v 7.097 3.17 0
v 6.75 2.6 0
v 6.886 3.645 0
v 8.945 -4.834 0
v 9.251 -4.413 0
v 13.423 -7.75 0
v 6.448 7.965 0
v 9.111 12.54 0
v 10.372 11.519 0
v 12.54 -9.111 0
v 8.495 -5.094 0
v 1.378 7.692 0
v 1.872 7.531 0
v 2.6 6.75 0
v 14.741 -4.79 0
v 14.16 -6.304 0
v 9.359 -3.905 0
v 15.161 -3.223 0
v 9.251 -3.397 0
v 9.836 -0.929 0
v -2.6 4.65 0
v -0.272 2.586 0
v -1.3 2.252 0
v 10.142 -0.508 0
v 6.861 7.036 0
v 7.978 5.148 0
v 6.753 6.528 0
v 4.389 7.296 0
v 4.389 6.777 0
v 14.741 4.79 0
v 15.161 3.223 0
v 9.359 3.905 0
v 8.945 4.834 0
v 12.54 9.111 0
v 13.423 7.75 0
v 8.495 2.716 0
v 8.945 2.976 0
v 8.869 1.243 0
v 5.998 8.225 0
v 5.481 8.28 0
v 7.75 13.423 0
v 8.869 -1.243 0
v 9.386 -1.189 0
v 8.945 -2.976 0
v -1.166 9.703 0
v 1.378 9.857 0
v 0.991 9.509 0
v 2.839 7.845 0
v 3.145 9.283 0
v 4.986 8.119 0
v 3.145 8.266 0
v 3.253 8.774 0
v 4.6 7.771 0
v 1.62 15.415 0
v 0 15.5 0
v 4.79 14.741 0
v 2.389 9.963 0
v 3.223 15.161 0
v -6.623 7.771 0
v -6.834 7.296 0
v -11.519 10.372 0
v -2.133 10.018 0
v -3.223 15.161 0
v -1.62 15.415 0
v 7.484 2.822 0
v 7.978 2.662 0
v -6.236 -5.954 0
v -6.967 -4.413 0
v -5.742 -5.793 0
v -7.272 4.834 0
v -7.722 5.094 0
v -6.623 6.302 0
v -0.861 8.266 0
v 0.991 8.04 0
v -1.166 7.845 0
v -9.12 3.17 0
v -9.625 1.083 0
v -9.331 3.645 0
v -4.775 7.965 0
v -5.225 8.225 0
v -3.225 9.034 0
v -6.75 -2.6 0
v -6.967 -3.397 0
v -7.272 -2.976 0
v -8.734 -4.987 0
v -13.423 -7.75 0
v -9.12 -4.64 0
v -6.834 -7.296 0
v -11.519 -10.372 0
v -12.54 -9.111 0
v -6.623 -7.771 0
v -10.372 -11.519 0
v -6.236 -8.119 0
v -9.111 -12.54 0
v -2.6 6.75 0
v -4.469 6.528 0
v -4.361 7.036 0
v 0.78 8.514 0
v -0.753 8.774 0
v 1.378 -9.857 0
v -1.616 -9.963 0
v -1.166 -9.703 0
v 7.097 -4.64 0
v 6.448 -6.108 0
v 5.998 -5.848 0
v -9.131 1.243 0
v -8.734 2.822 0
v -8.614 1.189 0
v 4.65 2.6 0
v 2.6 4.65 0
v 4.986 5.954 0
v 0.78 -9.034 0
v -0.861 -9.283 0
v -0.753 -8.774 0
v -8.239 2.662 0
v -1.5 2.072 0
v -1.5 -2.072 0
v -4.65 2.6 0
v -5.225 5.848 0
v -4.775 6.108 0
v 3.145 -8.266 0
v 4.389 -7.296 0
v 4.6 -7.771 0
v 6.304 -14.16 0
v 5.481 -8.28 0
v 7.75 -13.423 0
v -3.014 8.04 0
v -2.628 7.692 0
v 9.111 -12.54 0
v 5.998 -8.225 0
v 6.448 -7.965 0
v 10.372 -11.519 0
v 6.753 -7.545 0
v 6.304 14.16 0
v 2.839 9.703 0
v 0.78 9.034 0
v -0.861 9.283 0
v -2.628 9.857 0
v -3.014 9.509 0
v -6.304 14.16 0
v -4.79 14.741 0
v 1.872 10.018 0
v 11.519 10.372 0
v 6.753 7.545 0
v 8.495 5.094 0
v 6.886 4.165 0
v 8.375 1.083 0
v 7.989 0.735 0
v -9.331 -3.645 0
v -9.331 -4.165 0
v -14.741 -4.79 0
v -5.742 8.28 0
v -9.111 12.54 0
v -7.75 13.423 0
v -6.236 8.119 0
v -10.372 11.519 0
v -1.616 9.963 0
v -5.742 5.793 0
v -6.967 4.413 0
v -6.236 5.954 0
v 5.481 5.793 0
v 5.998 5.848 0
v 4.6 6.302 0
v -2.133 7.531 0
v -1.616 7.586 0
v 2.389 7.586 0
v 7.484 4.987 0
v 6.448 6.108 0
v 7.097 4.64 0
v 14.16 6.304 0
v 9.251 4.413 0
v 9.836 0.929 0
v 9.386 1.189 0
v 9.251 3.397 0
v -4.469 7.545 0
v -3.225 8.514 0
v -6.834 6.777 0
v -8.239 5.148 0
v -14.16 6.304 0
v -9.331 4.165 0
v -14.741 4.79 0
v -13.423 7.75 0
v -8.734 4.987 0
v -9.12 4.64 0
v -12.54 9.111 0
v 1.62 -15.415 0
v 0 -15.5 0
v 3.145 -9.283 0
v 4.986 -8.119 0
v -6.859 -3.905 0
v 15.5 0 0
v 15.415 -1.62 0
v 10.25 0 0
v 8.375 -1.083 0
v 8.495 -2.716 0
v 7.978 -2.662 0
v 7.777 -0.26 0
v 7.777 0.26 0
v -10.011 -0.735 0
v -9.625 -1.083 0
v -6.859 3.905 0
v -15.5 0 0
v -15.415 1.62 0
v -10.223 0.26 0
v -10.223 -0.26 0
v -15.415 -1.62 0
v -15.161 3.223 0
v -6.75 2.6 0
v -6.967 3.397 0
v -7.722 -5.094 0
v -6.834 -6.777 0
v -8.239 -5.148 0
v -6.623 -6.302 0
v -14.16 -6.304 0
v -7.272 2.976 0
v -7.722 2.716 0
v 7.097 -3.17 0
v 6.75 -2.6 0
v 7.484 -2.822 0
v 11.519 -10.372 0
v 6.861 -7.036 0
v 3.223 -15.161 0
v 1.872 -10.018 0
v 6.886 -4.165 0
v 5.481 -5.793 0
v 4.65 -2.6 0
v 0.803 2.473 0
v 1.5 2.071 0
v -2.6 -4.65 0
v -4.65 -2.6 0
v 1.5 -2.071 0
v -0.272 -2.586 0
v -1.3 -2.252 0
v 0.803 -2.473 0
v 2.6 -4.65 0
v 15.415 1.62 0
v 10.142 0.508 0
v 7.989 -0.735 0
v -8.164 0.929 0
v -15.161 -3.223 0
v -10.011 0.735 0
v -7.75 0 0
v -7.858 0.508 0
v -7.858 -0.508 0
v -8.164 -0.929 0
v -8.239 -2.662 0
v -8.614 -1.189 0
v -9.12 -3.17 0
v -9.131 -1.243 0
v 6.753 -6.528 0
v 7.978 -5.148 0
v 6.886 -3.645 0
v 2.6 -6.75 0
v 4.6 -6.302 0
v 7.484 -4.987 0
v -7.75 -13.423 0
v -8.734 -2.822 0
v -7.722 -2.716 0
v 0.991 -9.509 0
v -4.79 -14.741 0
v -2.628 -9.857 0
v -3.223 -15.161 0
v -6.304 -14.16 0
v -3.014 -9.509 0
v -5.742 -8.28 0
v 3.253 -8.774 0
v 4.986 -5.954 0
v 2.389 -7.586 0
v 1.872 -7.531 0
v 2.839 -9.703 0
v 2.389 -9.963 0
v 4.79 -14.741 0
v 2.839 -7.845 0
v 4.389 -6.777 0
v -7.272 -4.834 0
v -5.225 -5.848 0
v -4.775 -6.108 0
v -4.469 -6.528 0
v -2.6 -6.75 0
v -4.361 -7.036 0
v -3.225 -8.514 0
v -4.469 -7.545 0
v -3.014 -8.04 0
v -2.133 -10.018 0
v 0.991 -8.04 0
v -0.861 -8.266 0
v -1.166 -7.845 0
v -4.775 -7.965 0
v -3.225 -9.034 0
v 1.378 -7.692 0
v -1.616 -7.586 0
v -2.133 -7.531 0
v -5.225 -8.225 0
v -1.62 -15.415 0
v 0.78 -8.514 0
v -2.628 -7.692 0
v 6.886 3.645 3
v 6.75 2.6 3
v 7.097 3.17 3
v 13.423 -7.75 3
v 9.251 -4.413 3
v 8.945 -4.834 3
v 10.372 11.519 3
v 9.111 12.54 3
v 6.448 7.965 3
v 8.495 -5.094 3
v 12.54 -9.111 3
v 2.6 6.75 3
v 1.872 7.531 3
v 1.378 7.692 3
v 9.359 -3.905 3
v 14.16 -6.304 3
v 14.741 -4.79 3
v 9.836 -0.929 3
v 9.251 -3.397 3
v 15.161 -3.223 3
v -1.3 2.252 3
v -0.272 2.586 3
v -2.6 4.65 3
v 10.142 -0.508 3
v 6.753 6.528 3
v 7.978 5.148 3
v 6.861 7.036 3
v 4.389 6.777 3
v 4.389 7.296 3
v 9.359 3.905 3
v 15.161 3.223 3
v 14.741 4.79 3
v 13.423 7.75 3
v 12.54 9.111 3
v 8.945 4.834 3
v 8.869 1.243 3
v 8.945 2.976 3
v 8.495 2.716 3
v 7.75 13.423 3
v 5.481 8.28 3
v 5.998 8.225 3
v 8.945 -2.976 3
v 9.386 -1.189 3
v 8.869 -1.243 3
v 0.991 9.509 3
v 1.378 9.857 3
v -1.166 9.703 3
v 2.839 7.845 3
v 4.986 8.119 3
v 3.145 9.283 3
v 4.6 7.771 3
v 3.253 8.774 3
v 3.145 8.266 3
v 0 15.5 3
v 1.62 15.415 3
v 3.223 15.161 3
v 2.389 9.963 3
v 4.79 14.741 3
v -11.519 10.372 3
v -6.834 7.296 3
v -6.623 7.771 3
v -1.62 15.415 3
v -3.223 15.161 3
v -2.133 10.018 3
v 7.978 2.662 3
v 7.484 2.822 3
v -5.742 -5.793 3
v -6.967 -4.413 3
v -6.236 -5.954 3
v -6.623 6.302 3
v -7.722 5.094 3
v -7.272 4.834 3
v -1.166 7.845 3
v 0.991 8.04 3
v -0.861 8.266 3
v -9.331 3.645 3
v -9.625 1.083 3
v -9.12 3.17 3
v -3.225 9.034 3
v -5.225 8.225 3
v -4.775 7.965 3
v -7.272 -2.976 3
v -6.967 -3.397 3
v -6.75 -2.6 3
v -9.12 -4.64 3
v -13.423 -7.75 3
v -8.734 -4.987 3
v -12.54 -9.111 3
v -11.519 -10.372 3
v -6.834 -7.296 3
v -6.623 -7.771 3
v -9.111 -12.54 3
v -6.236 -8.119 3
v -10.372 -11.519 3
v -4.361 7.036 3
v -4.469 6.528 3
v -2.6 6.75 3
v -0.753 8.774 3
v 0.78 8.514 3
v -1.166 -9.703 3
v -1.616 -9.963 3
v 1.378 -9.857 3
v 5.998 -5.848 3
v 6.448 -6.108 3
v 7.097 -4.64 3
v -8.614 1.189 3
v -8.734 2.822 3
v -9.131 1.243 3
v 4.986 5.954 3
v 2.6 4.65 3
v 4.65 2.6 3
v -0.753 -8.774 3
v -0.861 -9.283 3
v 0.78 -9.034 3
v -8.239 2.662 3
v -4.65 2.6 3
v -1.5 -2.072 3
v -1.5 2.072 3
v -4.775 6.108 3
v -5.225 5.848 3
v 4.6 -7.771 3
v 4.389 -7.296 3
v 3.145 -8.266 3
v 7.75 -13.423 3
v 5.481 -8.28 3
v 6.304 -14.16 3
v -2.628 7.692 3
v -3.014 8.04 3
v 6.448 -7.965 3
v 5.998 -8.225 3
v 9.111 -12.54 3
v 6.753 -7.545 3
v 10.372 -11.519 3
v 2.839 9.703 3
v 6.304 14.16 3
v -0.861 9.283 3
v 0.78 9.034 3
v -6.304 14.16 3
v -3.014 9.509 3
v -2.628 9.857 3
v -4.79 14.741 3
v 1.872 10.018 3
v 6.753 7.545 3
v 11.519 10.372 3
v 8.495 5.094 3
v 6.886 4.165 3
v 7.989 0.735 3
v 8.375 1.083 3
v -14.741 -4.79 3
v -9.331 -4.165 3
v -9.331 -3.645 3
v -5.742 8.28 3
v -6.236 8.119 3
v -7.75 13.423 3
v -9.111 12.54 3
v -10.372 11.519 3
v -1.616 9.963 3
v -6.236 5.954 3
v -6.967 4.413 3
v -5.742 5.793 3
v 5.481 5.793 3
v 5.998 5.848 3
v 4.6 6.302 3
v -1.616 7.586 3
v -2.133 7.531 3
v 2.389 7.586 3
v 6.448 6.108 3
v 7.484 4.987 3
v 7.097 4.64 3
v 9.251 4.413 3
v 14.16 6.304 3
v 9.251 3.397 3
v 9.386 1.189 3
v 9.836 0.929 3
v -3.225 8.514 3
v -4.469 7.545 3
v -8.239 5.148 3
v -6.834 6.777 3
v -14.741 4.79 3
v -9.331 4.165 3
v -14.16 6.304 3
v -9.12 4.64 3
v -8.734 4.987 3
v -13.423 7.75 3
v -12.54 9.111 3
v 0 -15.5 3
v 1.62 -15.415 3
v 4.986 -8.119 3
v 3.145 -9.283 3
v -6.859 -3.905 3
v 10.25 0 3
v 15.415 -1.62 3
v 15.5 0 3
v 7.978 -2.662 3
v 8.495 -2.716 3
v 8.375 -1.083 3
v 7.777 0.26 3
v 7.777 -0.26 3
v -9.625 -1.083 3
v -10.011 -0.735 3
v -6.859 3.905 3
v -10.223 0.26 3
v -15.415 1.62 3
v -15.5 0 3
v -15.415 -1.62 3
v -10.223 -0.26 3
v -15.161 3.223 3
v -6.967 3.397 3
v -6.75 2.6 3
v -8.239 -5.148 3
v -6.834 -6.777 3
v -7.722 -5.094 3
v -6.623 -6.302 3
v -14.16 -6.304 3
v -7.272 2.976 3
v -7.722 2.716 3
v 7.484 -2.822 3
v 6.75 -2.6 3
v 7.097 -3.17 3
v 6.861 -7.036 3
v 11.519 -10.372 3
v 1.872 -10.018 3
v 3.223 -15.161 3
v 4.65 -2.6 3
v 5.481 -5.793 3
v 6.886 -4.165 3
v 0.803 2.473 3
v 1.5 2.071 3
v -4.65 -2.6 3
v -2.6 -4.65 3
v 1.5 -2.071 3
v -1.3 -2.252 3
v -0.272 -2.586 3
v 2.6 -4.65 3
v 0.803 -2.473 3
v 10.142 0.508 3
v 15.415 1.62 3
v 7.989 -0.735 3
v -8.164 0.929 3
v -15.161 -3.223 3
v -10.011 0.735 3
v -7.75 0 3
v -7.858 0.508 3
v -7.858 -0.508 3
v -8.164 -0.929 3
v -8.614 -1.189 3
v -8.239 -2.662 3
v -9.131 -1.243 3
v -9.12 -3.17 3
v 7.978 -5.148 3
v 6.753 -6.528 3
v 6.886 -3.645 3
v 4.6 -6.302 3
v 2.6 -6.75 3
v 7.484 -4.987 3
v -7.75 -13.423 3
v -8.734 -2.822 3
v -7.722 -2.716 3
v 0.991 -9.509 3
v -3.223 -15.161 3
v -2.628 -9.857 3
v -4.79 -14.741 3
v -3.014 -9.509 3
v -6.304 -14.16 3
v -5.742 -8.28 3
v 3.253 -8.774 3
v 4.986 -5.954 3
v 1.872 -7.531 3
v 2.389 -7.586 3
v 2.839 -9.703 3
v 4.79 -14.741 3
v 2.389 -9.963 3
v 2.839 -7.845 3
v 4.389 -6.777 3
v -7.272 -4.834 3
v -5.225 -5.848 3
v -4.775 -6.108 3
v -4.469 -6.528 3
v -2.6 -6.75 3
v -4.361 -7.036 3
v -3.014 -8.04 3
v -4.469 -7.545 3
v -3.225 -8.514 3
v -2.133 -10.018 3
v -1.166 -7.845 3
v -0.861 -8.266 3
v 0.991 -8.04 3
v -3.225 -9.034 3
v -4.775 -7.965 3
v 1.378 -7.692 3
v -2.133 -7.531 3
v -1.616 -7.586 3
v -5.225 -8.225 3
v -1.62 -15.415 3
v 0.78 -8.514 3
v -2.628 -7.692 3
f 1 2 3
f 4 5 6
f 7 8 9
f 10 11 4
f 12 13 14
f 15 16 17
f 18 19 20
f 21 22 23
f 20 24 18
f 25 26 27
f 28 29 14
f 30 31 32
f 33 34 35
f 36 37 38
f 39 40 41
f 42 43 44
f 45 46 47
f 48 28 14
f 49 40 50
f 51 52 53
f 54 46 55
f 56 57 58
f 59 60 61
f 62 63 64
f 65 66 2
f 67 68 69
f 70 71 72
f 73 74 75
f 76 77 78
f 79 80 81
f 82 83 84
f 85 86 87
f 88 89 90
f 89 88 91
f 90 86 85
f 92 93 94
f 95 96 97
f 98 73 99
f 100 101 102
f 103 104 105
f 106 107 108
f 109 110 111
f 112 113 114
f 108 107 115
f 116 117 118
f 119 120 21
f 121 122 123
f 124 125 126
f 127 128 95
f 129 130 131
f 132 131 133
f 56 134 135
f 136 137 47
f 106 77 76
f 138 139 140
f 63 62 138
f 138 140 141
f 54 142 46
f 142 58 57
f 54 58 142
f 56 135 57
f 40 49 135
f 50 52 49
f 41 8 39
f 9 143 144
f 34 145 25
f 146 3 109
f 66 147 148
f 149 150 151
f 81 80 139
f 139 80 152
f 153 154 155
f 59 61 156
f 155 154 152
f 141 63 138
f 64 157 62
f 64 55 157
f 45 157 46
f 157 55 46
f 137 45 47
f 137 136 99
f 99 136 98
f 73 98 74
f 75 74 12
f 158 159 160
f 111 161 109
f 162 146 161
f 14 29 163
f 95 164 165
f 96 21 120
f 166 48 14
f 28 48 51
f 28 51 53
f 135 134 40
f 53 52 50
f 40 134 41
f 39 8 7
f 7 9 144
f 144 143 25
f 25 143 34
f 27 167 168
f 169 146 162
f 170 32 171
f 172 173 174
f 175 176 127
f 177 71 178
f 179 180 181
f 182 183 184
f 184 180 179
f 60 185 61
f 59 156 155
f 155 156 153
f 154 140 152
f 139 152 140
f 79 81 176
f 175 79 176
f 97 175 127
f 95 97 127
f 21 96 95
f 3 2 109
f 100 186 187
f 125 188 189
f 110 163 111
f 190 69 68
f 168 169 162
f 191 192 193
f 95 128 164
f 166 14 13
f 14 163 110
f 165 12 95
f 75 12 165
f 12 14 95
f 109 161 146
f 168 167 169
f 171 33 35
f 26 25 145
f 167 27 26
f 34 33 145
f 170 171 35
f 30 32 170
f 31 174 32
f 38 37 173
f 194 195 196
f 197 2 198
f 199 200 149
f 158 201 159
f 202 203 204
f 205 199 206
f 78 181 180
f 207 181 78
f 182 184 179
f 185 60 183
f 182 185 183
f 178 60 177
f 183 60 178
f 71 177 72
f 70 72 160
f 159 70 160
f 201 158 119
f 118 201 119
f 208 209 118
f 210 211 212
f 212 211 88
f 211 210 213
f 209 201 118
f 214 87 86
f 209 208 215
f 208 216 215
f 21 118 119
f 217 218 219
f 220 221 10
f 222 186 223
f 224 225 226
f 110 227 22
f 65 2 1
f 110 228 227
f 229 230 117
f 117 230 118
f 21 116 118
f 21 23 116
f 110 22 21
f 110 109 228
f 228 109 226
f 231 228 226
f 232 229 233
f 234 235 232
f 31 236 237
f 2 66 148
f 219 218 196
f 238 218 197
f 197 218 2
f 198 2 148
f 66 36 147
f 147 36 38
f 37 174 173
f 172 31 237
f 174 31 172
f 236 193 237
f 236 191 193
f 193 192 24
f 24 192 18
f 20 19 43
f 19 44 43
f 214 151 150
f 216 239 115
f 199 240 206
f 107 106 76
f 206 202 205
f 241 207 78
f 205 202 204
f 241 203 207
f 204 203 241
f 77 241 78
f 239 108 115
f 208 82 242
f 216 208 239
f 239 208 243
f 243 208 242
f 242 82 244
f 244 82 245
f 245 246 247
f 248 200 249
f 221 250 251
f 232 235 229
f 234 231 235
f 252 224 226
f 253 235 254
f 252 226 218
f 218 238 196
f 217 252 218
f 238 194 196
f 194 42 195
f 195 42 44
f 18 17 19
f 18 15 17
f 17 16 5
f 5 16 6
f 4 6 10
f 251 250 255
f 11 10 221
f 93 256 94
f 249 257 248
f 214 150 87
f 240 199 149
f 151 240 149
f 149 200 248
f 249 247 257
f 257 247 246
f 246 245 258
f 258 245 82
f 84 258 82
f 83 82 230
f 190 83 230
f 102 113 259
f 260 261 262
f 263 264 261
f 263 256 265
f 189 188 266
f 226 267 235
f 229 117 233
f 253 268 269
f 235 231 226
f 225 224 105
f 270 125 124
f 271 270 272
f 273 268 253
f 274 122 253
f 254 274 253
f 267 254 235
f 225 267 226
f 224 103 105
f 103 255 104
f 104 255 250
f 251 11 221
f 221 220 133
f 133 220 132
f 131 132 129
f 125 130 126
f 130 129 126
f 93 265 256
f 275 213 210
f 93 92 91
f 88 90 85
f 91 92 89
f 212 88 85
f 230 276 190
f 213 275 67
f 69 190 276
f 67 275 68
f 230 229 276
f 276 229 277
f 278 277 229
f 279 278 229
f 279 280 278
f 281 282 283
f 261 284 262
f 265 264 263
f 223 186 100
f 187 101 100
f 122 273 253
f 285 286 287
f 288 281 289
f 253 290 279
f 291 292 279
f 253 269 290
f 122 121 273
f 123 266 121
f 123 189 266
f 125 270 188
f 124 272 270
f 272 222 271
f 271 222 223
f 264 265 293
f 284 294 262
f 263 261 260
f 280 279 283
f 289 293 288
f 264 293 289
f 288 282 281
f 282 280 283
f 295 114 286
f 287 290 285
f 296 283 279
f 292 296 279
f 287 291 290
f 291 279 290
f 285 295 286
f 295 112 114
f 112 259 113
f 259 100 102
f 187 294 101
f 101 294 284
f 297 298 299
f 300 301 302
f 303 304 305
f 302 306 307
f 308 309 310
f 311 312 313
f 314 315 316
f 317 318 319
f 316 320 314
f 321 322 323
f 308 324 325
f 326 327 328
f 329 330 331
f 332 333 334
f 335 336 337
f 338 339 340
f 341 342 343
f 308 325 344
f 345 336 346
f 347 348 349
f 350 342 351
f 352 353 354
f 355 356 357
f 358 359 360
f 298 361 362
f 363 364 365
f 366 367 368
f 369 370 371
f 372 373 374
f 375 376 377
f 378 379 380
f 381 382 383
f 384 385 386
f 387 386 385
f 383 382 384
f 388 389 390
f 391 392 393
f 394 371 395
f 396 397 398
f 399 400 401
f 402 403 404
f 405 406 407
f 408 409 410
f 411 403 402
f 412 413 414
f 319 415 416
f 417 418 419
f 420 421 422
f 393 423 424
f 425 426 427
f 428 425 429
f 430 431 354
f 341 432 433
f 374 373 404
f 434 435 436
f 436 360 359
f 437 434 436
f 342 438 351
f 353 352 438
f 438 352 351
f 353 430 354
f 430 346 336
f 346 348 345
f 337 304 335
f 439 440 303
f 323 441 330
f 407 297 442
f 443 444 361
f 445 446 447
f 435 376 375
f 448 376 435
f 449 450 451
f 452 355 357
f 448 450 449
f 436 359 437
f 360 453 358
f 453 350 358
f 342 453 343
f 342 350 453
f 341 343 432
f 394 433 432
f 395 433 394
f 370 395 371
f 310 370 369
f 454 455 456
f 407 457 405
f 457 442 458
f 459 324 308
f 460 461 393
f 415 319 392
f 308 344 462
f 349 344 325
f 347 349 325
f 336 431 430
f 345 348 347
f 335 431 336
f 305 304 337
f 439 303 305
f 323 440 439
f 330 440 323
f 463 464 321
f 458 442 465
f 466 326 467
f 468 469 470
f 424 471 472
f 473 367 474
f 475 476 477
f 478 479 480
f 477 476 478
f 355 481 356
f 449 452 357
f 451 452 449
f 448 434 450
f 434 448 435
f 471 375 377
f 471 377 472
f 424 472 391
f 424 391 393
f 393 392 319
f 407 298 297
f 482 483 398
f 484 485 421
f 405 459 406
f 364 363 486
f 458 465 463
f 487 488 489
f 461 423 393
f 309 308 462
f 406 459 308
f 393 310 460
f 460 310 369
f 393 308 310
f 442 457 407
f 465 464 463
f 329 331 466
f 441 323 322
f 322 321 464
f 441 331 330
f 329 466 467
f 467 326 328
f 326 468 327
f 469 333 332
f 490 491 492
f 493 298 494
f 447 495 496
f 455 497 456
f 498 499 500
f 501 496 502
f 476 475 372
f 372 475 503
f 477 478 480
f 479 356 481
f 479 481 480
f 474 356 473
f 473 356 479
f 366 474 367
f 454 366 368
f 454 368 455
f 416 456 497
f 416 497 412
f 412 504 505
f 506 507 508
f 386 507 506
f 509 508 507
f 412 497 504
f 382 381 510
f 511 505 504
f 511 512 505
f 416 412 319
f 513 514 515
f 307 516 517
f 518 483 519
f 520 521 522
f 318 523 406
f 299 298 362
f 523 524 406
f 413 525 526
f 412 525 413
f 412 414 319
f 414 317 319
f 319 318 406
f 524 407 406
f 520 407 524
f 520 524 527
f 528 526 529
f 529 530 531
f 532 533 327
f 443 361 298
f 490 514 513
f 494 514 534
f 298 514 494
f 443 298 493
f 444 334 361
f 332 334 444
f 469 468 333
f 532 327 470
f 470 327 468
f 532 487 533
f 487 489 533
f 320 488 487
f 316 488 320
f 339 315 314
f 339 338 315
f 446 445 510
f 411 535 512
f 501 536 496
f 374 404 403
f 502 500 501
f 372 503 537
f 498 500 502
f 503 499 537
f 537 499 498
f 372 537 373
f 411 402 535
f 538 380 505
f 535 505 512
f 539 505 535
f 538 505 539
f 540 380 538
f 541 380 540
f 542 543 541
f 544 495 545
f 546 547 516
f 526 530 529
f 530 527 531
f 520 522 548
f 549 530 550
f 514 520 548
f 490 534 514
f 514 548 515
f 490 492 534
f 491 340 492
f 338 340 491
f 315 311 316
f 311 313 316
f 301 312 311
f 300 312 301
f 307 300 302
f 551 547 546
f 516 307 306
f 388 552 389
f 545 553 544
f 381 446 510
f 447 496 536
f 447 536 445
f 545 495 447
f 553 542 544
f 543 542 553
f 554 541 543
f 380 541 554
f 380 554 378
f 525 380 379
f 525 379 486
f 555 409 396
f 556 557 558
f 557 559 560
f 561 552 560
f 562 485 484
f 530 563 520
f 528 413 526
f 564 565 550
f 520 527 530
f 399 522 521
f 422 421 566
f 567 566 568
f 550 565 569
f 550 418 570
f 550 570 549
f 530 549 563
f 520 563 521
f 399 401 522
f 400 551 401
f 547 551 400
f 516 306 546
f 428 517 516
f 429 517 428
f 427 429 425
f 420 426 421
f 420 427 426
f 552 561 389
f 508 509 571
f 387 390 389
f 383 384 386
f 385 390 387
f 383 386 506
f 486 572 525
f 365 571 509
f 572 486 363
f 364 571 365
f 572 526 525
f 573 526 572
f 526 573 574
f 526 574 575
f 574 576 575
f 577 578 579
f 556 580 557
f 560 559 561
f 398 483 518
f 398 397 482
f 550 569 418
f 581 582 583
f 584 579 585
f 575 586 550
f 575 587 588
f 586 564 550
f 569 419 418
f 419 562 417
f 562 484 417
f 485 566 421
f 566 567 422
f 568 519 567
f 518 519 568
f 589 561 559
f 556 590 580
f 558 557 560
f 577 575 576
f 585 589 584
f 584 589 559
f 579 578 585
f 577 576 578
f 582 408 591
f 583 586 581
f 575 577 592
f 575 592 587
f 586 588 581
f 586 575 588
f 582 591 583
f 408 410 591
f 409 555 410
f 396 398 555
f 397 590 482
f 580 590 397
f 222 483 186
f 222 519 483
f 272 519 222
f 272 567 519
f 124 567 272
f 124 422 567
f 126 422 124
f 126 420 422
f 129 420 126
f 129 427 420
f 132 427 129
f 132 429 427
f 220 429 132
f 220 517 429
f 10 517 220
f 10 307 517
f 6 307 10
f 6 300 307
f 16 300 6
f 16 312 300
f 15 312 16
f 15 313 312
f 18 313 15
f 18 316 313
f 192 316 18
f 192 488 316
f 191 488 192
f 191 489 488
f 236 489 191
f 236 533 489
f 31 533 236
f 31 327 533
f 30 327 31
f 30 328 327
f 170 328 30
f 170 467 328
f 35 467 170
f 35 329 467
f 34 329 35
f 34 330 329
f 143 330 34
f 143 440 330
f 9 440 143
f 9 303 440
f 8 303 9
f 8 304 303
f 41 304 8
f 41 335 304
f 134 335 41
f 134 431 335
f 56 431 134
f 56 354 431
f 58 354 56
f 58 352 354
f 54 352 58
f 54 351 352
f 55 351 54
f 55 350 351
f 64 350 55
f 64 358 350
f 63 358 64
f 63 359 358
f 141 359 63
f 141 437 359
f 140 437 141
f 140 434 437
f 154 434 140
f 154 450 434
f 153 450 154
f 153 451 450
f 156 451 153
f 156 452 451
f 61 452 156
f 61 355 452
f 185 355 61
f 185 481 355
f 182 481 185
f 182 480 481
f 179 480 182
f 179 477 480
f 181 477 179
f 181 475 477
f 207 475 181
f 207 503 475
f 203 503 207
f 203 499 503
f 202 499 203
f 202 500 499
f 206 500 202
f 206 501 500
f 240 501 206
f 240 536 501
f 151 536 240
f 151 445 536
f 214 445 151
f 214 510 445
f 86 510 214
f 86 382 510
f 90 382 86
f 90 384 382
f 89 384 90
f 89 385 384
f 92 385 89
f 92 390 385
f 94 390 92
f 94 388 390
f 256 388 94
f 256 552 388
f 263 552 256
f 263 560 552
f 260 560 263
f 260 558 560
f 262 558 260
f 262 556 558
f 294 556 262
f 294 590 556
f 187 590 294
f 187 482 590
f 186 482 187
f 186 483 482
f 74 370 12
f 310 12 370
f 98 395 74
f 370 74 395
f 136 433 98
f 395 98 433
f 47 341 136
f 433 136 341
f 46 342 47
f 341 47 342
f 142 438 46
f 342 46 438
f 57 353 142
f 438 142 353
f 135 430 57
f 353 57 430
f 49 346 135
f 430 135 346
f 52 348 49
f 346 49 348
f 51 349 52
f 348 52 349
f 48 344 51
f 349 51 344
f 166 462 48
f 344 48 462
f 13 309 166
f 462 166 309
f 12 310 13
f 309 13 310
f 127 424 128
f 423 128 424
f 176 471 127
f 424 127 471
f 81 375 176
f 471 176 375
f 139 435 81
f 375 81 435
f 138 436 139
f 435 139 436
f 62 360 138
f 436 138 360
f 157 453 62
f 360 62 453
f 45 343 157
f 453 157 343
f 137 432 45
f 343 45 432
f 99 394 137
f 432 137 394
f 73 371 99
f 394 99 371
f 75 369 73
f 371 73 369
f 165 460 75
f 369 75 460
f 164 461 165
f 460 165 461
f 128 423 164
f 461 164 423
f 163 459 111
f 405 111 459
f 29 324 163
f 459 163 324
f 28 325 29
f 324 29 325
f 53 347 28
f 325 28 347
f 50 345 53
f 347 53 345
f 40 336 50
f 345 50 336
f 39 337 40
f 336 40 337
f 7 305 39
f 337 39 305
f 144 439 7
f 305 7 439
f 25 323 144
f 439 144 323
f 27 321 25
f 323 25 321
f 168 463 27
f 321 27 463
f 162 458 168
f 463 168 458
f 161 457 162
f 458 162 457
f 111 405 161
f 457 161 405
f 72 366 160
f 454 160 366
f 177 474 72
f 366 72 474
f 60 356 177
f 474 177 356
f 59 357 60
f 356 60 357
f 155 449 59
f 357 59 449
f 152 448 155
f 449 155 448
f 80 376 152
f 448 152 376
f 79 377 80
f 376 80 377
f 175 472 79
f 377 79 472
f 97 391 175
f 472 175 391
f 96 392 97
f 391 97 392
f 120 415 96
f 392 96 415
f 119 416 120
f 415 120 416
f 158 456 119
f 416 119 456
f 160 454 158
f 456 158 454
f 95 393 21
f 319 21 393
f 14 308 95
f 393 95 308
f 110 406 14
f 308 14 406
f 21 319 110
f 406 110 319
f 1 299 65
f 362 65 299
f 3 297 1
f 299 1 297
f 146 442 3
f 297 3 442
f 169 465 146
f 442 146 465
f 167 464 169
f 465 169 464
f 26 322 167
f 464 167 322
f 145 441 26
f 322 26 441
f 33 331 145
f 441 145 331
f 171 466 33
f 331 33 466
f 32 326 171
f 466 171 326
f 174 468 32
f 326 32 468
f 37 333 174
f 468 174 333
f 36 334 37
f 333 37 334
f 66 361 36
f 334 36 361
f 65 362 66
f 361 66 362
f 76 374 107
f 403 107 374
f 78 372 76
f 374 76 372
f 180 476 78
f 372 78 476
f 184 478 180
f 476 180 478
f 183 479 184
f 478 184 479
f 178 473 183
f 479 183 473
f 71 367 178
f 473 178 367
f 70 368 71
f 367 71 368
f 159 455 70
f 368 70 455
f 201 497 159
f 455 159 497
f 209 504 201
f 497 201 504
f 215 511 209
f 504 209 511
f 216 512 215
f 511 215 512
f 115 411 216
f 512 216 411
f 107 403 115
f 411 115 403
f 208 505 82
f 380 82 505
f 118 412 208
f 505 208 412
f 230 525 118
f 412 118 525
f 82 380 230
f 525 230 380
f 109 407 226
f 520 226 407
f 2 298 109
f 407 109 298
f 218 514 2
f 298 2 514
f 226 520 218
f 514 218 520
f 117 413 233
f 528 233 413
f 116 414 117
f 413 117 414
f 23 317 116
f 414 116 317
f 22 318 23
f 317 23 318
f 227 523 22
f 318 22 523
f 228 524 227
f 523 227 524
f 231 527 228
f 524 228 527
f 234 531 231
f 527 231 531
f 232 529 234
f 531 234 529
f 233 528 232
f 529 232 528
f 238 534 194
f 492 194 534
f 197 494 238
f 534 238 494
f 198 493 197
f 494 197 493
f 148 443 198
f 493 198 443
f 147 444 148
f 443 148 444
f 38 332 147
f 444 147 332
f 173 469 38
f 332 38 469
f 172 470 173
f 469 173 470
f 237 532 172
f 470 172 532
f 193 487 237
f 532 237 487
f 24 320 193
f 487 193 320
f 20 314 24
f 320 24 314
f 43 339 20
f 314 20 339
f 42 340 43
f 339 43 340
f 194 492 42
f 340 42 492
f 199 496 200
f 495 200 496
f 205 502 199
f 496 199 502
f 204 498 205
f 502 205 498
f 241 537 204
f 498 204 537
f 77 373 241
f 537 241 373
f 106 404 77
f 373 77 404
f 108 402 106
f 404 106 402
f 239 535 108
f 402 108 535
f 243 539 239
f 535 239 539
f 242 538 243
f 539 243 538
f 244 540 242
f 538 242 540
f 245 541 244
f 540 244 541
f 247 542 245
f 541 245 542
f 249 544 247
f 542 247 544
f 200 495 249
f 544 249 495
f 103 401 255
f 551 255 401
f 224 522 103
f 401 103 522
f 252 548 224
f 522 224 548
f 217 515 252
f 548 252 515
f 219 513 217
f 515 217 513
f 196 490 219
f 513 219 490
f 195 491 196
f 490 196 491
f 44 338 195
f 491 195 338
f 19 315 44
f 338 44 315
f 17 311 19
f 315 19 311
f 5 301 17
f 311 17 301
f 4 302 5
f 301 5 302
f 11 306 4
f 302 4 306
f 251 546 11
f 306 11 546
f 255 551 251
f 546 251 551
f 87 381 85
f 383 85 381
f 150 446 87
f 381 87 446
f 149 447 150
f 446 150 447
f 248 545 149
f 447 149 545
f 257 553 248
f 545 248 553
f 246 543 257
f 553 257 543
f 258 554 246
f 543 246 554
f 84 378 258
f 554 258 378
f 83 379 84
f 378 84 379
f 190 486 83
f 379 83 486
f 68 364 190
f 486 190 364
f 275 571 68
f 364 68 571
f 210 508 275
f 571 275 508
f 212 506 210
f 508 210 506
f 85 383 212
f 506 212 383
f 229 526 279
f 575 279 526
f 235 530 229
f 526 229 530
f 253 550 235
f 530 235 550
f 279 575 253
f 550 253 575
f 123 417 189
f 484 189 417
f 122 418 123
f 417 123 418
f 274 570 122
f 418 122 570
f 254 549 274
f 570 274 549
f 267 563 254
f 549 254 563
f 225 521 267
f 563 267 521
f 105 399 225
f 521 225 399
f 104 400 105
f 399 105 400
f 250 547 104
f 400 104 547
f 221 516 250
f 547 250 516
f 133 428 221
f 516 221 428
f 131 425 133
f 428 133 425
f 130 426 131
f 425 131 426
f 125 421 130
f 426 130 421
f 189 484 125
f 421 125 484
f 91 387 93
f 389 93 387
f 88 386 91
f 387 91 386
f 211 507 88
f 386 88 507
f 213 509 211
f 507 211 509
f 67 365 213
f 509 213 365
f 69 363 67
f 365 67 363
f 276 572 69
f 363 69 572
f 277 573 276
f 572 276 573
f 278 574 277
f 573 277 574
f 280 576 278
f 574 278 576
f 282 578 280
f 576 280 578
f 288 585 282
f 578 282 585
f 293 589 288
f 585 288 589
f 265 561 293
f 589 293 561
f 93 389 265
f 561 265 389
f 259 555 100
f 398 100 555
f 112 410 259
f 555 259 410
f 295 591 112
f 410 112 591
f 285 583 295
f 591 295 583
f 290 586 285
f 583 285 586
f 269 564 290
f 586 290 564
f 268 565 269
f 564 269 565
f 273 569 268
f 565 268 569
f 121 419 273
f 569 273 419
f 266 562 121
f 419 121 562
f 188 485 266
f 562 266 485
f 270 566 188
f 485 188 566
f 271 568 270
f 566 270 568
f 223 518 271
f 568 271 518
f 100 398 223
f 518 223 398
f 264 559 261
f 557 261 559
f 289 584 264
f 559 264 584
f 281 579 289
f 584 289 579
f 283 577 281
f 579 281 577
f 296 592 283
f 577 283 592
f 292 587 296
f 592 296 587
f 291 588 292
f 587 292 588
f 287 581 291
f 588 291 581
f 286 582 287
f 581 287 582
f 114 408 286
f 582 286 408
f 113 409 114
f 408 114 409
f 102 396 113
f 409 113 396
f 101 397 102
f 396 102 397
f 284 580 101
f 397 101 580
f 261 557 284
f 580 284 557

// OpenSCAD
flap_hole_count = 14;
flap_hole_radius = 1.25;
inner_radius = 9;
outer_radius = 15.5;

module flap_holes() {
    for(i=[0:360/flap_hole_count:359]) {
        translate([inner_radius*cos(i), inner_radius*sin(i)])
            circle(r=flap_hole_radius, $fn=15);
    };
}

// Shape for stepper motor insert
module motor_insert() {
    difference() {
        // Increased radius .1 for fit
        circle(r = 2.6, $fn=15);
        translate([4,0])
            square(5, center = true);
        translate([-4,0])
            square(5, center = true);
    }
}

module spool_box_insert() {
    for(i=[0:90:359]) {
        translate([5.7*cos(i),5.7*sin(i)])
            rotate([0,0,i])
                square([2.1, 5.2], center=true);
    }
}

module spool_left_2d() {
    difference() {
        // Main circle
        circle(r=outer_radius, $fn=60);
        
        // Flap Holes
        flap_holes();
        
        // Motor insert hole
        motor_insert();
        
        // Spool Box inserts
        spool_box_insert();
    }
}

module spool_left() {
    linear_extrude(3) {
        spool_left_2d();
    }
}

spool_left();
